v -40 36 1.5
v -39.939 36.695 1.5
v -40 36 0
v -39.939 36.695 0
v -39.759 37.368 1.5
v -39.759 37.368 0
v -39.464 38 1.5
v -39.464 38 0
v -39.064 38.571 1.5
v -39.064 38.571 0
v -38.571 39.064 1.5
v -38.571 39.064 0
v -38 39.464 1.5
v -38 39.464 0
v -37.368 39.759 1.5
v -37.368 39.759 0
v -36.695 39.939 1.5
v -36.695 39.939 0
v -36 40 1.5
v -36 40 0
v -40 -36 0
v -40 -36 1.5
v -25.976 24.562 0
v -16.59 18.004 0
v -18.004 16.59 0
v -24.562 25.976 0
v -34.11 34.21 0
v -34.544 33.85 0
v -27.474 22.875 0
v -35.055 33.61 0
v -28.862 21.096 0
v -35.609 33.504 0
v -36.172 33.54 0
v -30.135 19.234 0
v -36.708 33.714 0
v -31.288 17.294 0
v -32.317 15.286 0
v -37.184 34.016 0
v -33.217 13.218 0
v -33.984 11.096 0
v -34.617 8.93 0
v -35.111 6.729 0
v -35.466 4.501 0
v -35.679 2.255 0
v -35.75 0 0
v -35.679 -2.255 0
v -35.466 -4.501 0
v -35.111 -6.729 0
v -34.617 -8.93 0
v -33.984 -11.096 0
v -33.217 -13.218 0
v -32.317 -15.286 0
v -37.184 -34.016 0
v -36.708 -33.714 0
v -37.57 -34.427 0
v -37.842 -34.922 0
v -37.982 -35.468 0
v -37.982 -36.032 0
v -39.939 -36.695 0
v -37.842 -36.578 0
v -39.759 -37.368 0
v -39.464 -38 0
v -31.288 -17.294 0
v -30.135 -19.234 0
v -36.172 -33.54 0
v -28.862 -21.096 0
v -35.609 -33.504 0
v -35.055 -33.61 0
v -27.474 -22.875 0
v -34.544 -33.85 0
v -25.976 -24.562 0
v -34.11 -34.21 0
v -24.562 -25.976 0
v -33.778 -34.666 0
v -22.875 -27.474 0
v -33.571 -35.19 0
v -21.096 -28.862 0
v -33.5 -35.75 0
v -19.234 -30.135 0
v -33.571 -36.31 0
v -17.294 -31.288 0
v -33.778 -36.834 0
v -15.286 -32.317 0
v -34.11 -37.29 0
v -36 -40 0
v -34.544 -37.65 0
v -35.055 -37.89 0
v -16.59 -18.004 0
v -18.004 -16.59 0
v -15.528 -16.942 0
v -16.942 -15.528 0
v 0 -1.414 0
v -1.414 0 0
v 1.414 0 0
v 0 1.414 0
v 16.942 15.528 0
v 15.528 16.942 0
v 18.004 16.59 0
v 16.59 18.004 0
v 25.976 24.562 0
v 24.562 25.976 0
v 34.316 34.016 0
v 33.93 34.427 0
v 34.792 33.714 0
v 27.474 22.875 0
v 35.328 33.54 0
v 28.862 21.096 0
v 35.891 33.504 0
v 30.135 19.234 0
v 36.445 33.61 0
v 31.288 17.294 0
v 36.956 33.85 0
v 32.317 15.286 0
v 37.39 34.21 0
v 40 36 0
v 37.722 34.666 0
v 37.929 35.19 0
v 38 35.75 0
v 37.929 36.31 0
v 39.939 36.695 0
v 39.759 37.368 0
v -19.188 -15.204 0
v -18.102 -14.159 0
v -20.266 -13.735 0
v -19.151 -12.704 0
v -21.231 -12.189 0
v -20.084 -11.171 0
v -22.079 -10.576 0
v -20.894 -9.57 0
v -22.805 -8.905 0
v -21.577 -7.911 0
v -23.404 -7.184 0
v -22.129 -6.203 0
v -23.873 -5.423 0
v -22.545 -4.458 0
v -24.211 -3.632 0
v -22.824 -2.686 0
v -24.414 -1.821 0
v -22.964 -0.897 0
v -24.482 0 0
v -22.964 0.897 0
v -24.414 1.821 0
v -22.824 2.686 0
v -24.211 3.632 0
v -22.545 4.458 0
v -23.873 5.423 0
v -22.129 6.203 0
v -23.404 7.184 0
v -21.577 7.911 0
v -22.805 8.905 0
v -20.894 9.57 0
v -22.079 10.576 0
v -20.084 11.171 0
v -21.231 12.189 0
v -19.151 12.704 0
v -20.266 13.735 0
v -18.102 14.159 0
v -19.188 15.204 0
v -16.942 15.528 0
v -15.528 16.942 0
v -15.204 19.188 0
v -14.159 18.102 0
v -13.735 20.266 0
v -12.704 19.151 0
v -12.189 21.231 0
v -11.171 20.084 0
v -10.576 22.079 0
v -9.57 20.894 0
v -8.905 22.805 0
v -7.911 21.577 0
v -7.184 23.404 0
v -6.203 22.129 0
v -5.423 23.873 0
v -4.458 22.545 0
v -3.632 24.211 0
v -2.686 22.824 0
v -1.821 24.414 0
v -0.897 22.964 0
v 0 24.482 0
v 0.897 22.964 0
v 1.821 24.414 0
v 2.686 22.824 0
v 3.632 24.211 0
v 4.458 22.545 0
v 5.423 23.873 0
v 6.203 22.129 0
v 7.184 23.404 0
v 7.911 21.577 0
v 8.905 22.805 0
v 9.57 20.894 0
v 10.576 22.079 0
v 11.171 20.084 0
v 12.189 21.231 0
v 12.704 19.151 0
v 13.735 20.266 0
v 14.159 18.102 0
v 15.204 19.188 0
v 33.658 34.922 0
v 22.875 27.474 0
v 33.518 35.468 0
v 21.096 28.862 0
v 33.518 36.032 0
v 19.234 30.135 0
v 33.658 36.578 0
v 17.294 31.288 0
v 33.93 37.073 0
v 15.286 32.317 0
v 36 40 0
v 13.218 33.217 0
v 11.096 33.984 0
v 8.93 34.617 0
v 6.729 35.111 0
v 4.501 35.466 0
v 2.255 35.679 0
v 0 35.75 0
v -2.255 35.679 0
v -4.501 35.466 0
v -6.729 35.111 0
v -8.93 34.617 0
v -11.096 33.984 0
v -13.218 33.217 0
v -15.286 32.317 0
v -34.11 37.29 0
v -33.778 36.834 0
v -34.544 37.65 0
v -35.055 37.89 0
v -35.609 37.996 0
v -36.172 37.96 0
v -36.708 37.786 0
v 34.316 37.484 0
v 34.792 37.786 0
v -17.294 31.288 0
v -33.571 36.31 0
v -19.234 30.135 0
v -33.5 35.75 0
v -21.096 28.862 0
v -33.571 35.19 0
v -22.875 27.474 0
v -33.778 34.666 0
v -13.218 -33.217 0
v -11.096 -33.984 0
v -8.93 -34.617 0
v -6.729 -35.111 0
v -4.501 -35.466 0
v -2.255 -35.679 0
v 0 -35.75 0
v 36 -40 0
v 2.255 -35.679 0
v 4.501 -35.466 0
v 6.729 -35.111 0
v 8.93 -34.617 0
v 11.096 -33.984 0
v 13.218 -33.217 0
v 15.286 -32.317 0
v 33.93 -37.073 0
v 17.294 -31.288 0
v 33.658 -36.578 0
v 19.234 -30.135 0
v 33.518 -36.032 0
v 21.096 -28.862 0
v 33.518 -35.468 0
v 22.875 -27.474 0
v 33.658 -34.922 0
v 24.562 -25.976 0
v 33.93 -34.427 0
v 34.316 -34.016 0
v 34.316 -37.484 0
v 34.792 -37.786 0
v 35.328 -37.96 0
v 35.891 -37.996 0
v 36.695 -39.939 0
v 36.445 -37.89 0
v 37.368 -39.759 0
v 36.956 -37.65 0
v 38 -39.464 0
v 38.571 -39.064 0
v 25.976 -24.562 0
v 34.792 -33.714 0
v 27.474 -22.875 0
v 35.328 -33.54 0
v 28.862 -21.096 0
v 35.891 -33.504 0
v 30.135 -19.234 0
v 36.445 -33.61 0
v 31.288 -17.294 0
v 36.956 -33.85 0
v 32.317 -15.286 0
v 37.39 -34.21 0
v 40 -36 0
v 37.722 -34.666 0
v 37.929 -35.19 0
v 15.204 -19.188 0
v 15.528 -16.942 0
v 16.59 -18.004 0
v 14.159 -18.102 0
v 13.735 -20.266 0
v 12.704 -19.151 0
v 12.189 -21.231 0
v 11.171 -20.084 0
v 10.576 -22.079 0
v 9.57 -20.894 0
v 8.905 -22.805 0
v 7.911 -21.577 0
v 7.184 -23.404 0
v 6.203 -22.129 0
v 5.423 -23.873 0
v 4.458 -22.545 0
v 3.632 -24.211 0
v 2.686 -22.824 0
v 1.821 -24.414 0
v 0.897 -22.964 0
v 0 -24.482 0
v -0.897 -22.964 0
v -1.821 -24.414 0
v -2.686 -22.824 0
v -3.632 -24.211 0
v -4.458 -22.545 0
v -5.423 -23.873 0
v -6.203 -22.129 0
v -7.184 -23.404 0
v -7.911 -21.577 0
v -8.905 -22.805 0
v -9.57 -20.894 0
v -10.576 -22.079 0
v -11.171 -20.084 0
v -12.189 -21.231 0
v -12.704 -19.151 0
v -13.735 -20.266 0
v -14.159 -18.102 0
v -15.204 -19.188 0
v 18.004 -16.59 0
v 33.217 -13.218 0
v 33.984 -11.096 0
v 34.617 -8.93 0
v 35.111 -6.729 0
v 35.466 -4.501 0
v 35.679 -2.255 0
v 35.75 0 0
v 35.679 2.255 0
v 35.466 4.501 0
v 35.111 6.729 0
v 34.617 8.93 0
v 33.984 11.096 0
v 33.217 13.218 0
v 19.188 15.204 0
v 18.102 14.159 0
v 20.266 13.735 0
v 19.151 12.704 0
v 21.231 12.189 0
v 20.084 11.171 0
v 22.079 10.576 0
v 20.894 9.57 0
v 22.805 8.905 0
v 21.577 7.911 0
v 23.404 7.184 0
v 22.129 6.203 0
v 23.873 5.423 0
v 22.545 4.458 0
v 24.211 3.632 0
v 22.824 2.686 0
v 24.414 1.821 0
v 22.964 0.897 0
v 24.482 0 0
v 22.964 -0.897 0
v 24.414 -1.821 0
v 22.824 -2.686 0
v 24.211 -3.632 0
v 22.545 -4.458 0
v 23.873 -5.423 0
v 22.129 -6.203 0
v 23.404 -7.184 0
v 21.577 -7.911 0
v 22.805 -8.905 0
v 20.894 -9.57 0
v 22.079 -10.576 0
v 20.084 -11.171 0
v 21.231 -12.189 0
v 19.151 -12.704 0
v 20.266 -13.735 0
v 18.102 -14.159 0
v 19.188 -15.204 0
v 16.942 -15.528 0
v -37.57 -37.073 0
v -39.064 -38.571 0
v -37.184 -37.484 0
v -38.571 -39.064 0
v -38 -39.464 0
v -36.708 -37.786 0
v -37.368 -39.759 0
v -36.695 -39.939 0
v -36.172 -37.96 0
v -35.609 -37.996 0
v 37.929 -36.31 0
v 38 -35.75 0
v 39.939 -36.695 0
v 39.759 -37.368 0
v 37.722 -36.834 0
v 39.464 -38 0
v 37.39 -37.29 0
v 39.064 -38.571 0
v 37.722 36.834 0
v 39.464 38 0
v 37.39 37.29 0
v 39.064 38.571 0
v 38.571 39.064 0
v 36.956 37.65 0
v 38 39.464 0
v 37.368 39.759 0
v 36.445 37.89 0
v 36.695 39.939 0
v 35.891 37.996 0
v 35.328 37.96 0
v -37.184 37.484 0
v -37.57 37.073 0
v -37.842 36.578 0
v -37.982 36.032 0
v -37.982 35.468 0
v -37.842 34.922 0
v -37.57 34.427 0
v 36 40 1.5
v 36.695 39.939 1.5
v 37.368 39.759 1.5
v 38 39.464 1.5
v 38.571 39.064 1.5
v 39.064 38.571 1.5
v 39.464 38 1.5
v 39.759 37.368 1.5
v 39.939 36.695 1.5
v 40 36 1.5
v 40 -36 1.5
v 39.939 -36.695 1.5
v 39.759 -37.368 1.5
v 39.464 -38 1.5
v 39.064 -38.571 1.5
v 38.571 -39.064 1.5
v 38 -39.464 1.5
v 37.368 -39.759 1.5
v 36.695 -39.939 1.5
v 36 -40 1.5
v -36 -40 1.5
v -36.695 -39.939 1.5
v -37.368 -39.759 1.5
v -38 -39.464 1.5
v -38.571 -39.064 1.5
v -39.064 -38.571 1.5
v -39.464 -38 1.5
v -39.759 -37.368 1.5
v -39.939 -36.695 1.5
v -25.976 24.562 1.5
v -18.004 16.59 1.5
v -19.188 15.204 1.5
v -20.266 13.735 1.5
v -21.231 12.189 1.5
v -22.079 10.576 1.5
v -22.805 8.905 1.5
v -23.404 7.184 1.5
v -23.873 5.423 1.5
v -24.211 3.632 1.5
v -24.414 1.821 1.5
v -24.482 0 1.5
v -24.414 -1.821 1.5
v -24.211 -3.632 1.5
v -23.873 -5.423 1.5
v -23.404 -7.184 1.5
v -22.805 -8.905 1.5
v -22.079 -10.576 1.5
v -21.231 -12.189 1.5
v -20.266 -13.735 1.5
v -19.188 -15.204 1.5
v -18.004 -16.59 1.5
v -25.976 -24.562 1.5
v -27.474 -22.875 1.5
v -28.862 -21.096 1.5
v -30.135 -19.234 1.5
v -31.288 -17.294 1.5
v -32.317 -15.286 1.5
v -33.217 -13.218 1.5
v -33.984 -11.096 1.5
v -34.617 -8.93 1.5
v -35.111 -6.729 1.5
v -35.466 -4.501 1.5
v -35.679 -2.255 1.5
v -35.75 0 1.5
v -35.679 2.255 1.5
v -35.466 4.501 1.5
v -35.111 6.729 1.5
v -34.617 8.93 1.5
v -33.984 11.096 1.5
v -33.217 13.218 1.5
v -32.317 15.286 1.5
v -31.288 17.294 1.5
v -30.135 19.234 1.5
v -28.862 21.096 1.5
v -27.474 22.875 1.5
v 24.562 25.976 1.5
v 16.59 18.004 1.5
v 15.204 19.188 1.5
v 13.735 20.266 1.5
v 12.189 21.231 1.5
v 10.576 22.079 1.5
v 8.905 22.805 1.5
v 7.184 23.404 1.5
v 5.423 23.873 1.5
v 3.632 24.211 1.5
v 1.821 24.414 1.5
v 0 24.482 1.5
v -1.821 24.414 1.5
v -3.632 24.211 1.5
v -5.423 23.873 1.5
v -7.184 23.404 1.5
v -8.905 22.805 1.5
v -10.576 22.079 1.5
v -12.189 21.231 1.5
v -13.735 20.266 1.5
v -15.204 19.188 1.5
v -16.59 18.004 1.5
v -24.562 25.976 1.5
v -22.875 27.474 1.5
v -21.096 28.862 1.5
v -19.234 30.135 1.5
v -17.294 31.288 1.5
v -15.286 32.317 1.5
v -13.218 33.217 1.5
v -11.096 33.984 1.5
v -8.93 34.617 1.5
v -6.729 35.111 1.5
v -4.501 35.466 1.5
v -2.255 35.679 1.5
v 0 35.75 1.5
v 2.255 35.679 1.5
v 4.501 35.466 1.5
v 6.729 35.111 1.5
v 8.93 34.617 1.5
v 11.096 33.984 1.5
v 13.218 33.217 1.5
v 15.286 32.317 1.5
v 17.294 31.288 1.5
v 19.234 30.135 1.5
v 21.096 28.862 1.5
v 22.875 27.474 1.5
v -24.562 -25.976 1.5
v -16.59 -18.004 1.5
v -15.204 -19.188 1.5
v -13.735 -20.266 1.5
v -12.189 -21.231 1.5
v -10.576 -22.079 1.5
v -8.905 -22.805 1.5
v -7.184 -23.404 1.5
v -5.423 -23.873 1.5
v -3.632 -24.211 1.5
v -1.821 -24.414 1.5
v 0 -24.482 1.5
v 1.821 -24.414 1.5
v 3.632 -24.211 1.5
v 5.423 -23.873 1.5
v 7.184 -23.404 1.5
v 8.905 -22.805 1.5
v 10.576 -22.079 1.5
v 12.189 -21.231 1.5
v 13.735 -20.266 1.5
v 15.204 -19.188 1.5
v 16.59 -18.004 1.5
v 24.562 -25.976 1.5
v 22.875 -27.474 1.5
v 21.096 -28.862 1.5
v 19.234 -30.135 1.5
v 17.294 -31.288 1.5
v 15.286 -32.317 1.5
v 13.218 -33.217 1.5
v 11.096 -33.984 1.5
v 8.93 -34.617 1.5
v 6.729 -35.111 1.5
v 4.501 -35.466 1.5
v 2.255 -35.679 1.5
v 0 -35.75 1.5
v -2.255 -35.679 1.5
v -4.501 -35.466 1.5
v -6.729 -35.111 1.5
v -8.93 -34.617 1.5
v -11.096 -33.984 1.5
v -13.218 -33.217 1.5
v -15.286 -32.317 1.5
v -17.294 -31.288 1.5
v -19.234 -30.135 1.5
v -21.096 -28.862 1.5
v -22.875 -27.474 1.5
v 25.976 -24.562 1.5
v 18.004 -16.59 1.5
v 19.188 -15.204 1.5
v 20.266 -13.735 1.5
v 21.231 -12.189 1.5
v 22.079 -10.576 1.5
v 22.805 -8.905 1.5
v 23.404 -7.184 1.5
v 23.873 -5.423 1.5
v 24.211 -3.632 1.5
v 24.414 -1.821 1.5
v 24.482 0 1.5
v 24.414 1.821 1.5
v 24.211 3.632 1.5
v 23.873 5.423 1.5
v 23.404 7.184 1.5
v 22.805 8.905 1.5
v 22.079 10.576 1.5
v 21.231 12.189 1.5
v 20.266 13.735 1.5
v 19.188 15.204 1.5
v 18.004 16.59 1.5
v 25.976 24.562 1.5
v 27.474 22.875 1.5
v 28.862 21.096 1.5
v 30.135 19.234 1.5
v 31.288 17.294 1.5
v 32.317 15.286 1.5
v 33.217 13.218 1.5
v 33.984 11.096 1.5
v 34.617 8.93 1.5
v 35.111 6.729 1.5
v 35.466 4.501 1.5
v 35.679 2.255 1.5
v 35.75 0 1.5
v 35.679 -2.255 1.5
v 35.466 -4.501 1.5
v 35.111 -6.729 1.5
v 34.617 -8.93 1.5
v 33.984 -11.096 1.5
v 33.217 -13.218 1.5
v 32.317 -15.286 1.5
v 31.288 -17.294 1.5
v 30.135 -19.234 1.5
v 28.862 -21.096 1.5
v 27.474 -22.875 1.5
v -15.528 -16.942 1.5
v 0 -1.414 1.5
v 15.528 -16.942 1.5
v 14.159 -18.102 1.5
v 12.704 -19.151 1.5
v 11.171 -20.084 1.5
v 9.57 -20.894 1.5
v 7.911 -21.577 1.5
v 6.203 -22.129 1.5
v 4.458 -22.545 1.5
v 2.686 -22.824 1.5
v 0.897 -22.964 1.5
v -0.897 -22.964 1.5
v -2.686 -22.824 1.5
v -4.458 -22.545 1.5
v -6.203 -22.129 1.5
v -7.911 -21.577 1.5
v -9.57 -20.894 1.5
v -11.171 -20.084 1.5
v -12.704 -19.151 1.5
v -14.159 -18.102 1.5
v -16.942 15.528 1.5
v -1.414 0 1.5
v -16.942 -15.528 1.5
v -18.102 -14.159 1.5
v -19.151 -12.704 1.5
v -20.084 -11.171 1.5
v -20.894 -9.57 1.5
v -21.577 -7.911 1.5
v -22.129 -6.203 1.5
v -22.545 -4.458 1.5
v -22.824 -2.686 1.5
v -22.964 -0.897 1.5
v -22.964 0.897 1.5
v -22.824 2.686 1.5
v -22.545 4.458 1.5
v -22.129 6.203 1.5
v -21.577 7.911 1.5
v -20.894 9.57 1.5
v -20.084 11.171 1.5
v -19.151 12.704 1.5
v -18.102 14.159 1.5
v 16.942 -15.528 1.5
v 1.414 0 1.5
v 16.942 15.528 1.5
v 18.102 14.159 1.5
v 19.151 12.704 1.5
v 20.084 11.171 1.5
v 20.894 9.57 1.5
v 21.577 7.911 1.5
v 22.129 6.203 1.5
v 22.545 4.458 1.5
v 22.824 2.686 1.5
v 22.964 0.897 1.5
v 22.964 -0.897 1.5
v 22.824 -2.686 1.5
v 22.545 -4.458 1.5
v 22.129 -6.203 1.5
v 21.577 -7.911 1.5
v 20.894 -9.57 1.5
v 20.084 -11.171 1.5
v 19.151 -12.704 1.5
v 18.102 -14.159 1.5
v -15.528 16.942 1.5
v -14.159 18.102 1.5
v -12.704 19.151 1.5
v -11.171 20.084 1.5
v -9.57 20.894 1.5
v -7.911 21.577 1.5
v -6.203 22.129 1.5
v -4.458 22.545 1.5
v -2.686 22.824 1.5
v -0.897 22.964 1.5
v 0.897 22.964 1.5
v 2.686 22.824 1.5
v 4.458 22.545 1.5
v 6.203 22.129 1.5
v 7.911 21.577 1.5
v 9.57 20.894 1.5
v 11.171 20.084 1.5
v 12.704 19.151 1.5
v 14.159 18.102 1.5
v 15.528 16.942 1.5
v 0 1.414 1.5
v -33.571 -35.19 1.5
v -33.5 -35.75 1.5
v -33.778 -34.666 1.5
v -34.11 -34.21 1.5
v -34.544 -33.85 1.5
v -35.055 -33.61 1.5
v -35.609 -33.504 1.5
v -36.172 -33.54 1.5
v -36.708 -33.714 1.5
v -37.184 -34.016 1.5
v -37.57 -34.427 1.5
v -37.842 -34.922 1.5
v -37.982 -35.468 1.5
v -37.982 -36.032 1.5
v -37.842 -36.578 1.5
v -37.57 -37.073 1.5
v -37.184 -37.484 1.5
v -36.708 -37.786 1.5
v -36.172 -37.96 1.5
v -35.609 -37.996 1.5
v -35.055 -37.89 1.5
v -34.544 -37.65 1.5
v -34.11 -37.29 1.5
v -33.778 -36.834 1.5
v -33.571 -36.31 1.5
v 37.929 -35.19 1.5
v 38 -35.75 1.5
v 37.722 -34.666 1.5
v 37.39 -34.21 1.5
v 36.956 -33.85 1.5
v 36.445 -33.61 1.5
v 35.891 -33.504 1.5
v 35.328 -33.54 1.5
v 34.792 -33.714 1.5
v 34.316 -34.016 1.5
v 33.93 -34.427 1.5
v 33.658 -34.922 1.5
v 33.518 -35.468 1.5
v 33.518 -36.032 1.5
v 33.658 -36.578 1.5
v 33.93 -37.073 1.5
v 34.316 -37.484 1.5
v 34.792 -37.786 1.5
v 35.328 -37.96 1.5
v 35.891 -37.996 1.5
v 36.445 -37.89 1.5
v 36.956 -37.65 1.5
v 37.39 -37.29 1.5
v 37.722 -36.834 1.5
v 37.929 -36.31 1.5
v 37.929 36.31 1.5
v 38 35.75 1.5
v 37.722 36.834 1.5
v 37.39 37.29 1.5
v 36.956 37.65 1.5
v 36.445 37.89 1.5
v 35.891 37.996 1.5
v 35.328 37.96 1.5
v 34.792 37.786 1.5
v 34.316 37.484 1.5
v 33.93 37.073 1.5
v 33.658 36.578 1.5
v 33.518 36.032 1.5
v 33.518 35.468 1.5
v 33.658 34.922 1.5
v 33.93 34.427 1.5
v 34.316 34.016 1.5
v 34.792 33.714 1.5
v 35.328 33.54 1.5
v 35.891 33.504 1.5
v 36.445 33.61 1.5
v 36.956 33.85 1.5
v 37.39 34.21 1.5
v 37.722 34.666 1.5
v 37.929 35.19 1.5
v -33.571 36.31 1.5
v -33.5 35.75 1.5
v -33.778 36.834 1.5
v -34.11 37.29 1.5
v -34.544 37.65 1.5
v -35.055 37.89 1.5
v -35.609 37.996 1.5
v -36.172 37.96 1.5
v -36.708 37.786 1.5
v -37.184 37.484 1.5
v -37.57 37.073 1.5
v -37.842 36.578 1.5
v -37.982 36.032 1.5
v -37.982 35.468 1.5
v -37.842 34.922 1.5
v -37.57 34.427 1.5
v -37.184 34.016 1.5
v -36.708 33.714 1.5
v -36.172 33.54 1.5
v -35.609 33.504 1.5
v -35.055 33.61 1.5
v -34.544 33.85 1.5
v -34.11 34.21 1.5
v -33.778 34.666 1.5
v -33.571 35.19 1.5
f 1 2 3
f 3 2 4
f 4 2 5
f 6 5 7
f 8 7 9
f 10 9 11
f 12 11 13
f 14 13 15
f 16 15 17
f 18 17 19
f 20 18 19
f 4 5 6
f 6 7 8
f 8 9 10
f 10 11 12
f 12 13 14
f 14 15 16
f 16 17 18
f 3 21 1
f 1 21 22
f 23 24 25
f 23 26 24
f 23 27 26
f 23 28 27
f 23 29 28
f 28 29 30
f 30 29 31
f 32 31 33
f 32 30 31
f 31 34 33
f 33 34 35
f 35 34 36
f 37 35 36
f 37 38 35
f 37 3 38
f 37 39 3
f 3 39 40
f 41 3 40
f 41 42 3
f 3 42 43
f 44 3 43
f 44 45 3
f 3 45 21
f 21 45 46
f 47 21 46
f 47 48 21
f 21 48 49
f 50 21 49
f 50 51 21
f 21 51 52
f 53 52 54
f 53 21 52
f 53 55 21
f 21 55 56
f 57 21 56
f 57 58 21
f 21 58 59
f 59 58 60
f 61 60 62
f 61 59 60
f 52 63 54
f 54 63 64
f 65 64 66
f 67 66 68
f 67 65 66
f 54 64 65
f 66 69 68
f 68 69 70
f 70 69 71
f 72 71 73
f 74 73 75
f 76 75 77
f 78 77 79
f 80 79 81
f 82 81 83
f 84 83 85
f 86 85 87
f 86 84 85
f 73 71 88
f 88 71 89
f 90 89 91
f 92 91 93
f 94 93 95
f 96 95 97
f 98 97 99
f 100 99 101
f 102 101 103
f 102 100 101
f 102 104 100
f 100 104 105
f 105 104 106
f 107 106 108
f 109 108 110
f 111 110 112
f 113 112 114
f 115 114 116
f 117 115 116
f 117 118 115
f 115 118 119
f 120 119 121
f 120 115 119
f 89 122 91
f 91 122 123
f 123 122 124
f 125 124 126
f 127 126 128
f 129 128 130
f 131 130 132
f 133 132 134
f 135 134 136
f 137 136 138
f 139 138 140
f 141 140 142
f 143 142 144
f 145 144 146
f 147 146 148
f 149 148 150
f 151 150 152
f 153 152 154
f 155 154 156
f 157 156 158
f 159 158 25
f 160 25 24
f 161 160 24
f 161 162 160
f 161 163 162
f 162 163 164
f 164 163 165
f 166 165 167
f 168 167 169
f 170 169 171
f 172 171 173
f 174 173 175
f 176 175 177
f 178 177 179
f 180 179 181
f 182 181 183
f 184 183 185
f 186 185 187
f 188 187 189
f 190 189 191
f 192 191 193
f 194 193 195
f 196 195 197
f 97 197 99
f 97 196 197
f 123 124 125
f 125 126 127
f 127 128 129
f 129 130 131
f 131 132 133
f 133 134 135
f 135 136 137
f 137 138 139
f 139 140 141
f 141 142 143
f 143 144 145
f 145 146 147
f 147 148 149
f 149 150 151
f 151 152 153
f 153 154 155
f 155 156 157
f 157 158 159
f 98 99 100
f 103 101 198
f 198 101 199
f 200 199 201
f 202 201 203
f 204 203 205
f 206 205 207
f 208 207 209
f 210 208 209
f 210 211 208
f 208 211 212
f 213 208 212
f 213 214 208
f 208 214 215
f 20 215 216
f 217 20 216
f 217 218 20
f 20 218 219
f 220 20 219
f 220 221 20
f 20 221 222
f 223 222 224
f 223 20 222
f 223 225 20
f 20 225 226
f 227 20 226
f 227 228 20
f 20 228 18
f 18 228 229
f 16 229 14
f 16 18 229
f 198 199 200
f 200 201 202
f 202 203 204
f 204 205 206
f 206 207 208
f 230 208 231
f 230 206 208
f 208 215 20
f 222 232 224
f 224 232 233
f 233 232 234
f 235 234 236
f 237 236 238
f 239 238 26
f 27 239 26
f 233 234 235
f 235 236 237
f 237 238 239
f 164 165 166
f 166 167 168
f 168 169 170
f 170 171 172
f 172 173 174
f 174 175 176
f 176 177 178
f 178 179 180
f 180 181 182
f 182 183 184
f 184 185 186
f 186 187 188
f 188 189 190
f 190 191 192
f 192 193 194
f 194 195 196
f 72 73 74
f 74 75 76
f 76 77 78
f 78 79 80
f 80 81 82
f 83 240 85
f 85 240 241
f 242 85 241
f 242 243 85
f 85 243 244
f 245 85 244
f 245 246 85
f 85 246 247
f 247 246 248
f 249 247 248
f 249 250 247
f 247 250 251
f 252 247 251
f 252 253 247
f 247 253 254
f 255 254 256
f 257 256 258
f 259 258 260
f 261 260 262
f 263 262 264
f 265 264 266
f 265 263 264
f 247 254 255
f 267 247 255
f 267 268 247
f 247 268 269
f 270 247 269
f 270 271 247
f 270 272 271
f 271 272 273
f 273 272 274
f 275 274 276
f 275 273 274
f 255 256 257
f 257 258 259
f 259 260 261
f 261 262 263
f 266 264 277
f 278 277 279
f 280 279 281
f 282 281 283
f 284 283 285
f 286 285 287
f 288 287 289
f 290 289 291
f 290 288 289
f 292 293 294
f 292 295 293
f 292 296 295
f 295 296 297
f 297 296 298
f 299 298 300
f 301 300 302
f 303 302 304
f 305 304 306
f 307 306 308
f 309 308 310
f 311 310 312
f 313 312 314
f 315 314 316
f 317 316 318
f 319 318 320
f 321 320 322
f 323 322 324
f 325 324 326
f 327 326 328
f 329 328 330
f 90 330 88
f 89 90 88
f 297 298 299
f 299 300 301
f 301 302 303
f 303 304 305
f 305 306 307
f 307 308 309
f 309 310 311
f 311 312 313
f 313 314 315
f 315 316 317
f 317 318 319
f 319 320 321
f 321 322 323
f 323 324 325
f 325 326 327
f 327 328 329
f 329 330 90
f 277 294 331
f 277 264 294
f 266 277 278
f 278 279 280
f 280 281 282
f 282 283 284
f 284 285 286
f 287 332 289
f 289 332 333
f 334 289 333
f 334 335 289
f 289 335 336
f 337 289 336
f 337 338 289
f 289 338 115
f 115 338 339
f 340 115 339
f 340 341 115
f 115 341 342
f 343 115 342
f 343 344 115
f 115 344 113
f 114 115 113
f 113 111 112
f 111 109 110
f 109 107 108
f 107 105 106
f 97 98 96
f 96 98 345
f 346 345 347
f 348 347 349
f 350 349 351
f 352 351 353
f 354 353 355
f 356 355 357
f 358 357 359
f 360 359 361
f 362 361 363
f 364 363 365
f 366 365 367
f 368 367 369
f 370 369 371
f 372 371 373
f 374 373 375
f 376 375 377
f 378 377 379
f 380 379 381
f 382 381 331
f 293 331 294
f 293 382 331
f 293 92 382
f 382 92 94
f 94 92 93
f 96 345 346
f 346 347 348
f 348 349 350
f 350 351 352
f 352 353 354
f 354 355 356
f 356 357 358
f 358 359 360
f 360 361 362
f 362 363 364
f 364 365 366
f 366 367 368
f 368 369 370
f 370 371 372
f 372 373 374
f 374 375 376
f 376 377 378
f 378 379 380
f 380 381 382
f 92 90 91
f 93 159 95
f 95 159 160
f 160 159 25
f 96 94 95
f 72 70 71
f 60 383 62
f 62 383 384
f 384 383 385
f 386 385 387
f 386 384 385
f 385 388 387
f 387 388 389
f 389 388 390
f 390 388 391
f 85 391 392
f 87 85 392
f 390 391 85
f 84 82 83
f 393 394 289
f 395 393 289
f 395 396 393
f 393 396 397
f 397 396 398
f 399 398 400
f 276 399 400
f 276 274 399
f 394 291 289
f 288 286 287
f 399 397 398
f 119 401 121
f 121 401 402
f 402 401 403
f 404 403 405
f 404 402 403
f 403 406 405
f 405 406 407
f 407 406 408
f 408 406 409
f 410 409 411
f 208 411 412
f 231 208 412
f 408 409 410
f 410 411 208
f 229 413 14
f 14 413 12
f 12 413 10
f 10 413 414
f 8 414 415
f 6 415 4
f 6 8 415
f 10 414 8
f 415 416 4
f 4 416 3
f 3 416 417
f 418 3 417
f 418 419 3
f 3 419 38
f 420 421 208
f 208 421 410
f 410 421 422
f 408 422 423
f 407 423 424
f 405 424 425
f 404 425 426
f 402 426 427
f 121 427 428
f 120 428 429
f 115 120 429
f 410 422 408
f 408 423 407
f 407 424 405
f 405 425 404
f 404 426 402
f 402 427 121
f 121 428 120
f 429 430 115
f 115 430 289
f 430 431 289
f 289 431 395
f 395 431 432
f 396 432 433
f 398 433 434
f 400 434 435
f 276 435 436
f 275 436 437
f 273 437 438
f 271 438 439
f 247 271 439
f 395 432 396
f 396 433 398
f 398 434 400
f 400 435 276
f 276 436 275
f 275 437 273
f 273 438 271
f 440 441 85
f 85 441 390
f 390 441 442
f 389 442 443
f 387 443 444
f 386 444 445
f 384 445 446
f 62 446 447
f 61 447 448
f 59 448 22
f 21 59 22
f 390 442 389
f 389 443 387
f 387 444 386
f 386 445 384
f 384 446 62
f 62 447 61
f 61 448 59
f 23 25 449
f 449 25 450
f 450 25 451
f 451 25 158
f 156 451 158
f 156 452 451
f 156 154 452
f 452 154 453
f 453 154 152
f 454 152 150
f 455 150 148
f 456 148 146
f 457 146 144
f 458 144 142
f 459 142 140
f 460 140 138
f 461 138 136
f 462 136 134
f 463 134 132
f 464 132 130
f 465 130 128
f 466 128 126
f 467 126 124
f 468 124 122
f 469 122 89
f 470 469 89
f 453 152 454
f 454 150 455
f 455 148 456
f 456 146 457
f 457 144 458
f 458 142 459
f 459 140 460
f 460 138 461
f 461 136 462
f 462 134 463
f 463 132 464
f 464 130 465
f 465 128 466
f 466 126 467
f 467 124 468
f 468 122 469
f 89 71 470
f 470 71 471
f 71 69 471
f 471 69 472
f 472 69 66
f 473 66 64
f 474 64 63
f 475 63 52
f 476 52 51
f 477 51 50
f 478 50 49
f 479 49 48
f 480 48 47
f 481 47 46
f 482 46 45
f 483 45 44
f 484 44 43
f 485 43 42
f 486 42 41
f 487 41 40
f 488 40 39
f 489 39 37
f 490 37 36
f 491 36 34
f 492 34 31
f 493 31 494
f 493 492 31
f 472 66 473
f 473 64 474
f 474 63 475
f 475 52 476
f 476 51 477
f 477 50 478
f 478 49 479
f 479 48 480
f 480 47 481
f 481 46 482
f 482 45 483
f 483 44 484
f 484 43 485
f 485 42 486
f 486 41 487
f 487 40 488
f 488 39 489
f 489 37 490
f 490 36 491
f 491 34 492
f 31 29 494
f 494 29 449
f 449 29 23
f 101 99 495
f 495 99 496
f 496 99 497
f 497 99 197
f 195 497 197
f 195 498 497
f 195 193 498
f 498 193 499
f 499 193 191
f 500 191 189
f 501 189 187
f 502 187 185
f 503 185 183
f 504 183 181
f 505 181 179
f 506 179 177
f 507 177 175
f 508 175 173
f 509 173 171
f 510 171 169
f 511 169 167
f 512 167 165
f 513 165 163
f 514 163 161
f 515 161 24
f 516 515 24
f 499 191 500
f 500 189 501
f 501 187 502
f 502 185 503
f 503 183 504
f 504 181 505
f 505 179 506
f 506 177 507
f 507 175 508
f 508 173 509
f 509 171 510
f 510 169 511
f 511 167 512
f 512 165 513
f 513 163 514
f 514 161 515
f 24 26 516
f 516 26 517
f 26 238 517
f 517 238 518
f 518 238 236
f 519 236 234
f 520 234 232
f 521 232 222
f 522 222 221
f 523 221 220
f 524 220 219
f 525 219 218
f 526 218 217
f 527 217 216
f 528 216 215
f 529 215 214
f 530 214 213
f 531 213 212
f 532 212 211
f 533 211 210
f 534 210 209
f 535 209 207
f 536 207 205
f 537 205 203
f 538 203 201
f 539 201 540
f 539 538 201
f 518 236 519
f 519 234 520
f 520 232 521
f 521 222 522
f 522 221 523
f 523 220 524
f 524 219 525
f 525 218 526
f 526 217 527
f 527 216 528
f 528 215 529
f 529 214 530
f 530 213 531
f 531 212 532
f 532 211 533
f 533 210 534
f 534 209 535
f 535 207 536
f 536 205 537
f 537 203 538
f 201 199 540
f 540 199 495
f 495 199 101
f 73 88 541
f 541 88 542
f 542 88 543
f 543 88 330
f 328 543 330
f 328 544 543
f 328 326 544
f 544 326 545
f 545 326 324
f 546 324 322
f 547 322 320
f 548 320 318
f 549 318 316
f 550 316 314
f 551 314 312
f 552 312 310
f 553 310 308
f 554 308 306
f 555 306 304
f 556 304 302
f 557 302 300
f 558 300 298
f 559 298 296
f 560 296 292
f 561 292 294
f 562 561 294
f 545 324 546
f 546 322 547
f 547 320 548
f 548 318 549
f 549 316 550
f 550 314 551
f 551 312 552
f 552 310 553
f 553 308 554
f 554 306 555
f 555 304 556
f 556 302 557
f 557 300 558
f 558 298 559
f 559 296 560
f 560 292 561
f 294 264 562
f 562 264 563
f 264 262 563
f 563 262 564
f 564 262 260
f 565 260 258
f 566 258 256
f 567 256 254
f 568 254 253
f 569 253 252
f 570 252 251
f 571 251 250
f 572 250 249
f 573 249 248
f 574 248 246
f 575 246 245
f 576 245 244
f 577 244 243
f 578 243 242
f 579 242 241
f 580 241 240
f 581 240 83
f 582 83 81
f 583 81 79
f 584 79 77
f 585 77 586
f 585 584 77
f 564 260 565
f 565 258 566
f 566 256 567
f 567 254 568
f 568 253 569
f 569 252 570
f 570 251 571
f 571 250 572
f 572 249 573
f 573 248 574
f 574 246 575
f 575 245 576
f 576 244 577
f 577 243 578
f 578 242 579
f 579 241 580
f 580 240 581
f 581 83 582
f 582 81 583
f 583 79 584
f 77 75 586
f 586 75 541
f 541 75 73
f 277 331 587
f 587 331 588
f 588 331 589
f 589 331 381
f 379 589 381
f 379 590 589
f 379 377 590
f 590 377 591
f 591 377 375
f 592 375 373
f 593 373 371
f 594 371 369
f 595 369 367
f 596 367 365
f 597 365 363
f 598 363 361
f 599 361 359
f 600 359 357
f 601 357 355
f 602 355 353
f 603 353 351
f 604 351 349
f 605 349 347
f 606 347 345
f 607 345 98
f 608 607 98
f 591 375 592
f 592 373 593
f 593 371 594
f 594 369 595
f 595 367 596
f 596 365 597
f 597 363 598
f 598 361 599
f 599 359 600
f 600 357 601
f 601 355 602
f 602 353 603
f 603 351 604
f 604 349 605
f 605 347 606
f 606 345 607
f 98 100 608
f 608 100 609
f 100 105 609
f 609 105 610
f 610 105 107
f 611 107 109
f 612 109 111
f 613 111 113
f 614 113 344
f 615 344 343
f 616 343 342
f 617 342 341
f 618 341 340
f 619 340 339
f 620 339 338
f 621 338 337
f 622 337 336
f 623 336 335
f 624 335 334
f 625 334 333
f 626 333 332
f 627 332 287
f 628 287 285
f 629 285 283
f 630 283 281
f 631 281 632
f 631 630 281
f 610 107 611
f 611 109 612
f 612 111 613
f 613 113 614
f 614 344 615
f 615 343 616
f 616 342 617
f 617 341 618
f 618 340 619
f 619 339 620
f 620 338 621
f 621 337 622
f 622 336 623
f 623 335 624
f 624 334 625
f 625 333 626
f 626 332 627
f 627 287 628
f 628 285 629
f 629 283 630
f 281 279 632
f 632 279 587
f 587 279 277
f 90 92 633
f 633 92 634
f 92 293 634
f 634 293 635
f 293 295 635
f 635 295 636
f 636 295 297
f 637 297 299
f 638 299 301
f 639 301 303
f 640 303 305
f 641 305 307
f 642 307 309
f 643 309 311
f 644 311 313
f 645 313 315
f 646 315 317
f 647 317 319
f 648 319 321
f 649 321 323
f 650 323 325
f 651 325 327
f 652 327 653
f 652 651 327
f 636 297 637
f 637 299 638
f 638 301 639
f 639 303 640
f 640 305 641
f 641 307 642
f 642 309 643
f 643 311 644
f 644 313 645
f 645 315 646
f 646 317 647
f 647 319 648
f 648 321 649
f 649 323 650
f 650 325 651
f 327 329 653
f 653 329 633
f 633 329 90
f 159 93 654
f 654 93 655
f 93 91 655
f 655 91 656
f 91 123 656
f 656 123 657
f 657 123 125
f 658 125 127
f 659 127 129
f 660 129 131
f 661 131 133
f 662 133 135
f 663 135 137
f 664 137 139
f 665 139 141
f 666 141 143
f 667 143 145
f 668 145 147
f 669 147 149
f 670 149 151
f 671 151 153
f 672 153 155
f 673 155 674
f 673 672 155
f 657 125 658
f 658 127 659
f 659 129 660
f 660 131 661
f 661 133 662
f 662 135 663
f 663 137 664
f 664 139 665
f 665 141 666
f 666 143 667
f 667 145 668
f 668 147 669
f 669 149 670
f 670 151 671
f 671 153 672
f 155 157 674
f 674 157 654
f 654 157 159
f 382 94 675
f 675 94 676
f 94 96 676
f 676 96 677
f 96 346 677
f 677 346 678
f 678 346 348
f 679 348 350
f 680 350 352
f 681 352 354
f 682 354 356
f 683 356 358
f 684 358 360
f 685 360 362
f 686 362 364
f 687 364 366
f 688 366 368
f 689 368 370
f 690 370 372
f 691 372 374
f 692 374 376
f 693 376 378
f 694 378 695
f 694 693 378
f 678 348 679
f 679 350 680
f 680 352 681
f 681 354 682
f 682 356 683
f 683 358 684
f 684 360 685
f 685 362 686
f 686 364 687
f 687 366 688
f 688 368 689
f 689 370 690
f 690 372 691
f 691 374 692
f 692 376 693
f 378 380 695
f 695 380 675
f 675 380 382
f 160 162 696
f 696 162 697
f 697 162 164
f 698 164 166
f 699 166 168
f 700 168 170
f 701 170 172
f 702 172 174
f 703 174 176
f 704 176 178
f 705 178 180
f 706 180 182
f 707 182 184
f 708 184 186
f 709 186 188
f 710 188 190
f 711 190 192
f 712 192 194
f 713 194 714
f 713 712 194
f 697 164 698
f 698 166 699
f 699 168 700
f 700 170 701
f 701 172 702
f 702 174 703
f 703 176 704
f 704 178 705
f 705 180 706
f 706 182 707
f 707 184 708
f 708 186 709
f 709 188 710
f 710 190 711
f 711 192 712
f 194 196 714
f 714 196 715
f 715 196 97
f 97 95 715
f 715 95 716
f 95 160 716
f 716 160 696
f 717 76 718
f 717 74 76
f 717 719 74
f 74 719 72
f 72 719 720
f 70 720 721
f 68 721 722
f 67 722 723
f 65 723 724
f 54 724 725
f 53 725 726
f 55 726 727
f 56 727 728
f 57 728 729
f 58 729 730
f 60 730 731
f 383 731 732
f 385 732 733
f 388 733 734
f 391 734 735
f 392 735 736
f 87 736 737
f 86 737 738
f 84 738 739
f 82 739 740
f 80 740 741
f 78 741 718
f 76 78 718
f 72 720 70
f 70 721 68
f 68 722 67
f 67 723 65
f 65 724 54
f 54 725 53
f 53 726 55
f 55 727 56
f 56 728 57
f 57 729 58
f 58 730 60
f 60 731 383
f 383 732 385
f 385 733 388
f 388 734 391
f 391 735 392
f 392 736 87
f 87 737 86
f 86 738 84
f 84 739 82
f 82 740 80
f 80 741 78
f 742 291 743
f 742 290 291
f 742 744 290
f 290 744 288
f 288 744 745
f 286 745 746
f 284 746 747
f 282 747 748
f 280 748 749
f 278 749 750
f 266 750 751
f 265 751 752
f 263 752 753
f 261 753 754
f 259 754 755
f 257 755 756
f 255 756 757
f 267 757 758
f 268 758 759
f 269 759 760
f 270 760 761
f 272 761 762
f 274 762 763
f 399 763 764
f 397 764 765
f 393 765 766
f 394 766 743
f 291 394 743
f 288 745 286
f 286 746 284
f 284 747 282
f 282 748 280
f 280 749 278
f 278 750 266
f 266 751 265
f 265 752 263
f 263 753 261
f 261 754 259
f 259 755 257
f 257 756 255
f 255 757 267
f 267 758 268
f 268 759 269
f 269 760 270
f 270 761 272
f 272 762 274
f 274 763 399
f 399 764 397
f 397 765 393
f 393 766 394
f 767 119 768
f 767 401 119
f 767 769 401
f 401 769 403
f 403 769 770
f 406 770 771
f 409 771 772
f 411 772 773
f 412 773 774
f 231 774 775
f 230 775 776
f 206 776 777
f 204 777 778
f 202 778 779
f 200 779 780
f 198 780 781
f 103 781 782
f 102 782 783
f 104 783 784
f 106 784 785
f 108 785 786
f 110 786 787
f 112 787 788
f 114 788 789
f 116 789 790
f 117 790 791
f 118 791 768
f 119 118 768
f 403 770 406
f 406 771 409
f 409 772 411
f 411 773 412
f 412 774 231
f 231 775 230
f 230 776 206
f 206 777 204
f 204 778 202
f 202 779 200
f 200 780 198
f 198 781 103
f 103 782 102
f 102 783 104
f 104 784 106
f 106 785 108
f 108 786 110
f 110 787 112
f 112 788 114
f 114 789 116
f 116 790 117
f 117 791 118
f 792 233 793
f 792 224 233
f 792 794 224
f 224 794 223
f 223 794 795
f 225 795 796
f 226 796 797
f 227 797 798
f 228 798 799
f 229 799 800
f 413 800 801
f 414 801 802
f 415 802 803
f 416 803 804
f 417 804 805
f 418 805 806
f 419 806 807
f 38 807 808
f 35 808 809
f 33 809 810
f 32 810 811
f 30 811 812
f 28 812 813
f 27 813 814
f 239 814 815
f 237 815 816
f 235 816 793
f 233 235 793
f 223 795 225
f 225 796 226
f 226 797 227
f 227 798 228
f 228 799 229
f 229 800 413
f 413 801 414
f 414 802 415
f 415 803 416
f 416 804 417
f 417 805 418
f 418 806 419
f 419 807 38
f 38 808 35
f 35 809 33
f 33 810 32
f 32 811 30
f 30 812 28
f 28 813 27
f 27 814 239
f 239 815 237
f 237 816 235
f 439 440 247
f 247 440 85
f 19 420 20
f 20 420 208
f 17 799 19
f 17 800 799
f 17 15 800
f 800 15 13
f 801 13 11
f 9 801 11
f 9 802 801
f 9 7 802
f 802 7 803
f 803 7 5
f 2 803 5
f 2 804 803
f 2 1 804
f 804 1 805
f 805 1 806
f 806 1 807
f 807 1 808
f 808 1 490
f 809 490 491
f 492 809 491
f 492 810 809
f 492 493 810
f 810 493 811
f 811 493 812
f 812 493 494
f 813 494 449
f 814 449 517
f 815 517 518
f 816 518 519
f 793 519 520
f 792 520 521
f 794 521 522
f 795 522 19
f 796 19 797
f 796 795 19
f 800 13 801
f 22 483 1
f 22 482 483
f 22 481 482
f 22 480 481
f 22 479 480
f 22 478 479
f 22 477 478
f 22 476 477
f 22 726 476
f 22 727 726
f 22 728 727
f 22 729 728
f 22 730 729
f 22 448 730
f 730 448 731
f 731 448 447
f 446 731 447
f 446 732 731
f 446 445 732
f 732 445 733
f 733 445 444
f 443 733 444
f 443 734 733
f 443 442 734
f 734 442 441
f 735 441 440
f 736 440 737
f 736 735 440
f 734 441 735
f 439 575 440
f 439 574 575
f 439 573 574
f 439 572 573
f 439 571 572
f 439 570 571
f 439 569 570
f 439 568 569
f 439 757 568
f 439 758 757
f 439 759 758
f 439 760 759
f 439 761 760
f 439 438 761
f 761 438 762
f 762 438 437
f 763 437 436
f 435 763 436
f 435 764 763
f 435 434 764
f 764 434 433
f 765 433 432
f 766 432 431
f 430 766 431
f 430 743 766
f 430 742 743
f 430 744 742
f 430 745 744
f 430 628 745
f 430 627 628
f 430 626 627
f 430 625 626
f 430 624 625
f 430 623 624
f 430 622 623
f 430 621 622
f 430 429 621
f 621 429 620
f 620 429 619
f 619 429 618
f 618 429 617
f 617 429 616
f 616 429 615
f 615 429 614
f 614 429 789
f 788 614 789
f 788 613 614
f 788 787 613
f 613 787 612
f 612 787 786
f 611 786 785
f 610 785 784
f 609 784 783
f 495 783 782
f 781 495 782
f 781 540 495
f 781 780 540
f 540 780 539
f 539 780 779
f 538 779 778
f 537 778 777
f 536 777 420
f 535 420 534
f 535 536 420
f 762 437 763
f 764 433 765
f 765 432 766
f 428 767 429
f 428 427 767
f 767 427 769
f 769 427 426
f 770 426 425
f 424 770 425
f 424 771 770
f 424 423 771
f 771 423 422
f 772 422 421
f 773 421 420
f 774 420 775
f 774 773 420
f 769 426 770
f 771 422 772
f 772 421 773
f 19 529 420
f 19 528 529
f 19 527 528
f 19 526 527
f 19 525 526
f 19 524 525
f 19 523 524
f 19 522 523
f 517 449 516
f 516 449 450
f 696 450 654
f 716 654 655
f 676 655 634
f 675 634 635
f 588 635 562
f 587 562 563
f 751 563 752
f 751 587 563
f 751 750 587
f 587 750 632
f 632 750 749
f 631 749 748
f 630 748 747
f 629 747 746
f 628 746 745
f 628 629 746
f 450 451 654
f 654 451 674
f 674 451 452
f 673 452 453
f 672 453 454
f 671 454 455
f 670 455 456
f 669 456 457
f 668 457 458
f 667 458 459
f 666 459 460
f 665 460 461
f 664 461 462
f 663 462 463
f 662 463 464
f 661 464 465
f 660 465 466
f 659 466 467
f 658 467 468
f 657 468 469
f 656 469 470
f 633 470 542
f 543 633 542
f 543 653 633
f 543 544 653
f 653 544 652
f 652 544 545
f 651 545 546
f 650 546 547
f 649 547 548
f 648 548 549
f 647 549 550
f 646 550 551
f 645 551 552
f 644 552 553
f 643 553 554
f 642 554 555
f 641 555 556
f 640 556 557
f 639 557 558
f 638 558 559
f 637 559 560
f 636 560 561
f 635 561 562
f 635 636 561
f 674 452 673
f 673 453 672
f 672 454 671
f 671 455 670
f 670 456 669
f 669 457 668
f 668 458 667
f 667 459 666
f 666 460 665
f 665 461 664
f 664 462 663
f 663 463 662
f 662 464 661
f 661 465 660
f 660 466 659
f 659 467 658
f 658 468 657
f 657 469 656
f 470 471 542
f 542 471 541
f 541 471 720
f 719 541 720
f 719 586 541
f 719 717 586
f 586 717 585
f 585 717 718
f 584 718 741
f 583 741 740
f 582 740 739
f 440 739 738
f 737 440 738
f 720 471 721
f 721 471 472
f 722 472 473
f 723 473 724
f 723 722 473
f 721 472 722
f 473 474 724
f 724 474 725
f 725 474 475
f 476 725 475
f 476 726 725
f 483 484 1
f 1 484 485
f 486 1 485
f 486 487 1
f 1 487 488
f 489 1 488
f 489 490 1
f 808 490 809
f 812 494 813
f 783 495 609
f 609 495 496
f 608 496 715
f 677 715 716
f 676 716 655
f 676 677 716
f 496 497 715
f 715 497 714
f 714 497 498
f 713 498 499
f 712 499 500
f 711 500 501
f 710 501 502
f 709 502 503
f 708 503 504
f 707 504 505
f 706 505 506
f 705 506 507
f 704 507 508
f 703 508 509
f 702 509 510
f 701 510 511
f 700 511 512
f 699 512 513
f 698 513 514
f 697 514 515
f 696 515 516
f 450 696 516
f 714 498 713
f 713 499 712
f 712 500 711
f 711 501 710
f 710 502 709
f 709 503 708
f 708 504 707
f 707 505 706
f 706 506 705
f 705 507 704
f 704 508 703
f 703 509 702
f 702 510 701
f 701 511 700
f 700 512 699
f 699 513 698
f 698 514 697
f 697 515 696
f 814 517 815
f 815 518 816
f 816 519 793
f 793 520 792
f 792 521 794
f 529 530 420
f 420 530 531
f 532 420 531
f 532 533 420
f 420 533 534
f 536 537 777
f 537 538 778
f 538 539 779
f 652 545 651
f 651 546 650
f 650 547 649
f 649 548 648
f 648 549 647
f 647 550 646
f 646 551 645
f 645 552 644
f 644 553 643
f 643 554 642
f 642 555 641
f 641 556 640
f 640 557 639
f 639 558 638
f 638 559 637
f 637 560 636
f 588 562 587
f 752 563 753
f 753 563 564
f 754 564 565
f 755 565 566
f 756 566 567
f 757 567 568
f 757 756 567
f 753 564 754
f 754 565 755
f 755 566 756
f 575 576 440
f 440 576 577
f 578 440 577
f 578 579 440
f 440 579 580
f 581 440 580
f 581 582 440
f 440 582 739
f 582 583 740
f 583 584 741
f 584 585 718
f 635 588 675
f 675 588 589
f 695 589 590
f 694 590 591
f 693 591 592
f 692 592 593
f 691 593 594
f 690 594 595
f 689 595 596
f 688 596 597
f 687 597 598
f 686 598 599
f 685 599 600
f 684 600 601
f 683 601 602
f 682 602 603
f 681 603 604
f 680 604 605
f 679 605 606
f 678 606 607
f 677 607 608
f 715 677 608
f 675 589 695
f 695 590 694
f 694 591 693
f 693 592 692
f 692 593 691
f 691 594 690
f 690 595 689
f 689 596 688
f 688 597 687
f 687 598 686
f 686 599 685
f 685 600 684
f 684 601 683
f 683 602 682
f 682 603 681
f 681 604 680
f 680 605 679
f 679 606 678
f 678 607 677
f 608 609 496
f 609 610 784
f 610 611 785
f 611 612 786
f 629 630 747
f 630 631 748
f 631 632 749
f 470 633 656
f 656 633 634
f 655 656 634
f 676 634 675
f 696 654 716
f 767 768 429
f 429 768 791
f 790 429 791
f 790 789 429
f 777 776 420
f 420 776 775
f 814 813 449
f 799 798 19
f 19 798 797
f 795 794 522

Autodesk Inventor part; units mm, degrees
ref_plane "YZ Plane" through (0, 0, 0) normal (1, 0, 0) x (0, 1, 0)
ref_plane "XZ Plane" through (0, 0, 0) normal (0, 1, 0) x (-1, 0, 0)
ref_plane "XY Plane" through (0, 0, 0) normal (0, 0, 1) x (1, 0, 0)
sketch "Sketch1" plane through (0, 0, 0) normal (0, 0, 1) x (1, 0, 0)
  circle A0 centre (-35.75, 35.75) radius 2.25 projected
  circle A1 centre (35.75, 35.75) radius 2.25 projected
  circle A2 centre (35.75, -35.75) radius 2.25 projected
  circle A3 centre (-35.75, -35.75) radius 2.25 projected
  line L0 (40, 40) -> (-40, 40) projected
  line L1 (-40, 40) -> (-40, -40) projected
  line L2 (-40, -40) -> (40, -40) projected
  line L3 (40, -40) -> (40, 40) projected
  circle A4 centre (0, 0) radius 35.75 construction
  line L4 (-35.75, 35.75) -> (35.75, -35.75) construction
  line L5 (-35.75, -35.75) -> (35.75, 35.75) construction
  line L6 (-24.5621, 25.9763) -> (-16.5896, 18.0038) construction
  line L7 (-25.9763, 24.5621) -> (16.5896, -18.0038) construction
  line L8 (24.5621, 25.9763) -> (18.5727, 19.987) construction
  line L9 (-24.5621, -25.9763) -> (16.9422, 15.528) construction
  line L10 (18.5727, 19.987) -> (17.1575, 18.5717) construction
  line L11 (17.1575, 18.5717) -> (16.5896, 18.0038) construction
  line L12 (0, 1.4142) -> (-18.0038, -16.5896) construction
  line L13 (0, 1.4142) -> (16.9422, -15.528) construction
  line L14 (16.5896, 18.0038) -> (15.528, 16.9422) construction
  line L15 (15.528, 16.9422) -> (0, 1.4142) construction
  arc A5 (16.9422, -15.528) -> (16.9422, 15.528) centre (0, 0) ccw
  line L16 (18.0038, 16.5896) -> (25.9763, 24.5621) construction
  line L17 (-16.5896, 18.0038) -> (0, 1.4142) construction
  arc A6 (-16.9422, 15.528) -> (-16.9422, -15.528) centre (0, 0) ccw
  arc A7 (-18.0038, 16.5896) -> (-18.0038, -16.5896) centre (0, 0) ccw
  line L18 (-18.0038, -16.5896) -> (-25.9763, -24.5621) construction
  arc A8 (-16.5896, -18.0038) -> (16.5896, -18.0038) centre (0, 0) ccw
  arc A9 (-15.528, -16.9422) -> (15.528, -16.9422) centre (0, 0) ccw
  line L19 (18.0038, -16.5896) -> (25.9763, -24.5621) construction
  line L20 (16.9422, -15.528) -> (18.0038, -16.5896) construction
  line L21 (16.9422, 15.528) -> (18.0038, 16.5896) construction
  arc A10 (15.528, 16.9422) -> (-15.528, 16.9422) centre (0, 0) ccw
  arc A11 (16.5896, 18.0038) -> (-16.5896, 18.0038) centre (0, 0) ccw
  line L22 (16.5896, -18.0038) -> (24.5621, -25.9763) construction
  arc A12 (18.0038, -16.5896) -> (18.0038, 16.5896) centre (0, 0) ccw
  arc A13 (24.5621, 25.9763) -> (-24.5621, 25.9763) centre (0, 0) ccw
  arc A14 (25.9763, -24.5621) -> (25.9763, 24.5621) centre (0, 0) ccw
  arc A15 (-24.5621, -25.9763) -> (24.5621, -25.9763) centre (0, 0) ccw
  arc A16 (-25.9763, 24.5621) -> (-25.9763, -24.5621) centre (0, 0) ccw
  line L23 (-16.5896, 18.0038) -> (-24.5621, 25.9763)
  line L24 (-18.0038, 16.5896) -> (-25.9763, 24.5621)
  line L25 (16.5896, 18.0038) -> (24.5621, 25.9763)
  line L26 (25.9763, 24.5621) -> (18.0038, 16.5896)
  line L27 (18.0038, -16.5896) -> (25.9763, -24.5621)
  line L28 (24.5621, -25.9763) -> (16.5896, -18.0038)
  line L29 (-24.5621, -25.9763) -> (-16.5896, -18.0038)
  line L30 (-18.0038, -16.5896) -> (-25.9763, -24.5621)
  line L31 (-16.9422, -15.528) -> (-1.4142, 0)
  line L32 (-15.528, -16.9422) -> (0, -1.4142)
  line L33 (-1.4142, 0) -> (-16.9422, 15.528)
  line L34 (-15.528, 16.9422) -> (0, 1.4142)
  line L35 (0, -1.4142) -> (15.528, -16.9422)
  line L36 (16.9422, -15.528) -> (1.4142, 0)
  line L37 (1.4142, 0) -> (16.9422, 15.528)
  line L38 (15.528, 16.9422) -> (0, 1.4142)
  dimension "d8" = 2
  dimension "d9" = 1
extrude "Extrusion3" add sketch "Sketch1" along normal blind 1.5
fillet "Fillet3" radius 4 4 edges at (-40, -40, 0.75) (40, -40, 0.75) (40, 40, 0.75) (-40, 40, 0.75)
properties part number "grid"
